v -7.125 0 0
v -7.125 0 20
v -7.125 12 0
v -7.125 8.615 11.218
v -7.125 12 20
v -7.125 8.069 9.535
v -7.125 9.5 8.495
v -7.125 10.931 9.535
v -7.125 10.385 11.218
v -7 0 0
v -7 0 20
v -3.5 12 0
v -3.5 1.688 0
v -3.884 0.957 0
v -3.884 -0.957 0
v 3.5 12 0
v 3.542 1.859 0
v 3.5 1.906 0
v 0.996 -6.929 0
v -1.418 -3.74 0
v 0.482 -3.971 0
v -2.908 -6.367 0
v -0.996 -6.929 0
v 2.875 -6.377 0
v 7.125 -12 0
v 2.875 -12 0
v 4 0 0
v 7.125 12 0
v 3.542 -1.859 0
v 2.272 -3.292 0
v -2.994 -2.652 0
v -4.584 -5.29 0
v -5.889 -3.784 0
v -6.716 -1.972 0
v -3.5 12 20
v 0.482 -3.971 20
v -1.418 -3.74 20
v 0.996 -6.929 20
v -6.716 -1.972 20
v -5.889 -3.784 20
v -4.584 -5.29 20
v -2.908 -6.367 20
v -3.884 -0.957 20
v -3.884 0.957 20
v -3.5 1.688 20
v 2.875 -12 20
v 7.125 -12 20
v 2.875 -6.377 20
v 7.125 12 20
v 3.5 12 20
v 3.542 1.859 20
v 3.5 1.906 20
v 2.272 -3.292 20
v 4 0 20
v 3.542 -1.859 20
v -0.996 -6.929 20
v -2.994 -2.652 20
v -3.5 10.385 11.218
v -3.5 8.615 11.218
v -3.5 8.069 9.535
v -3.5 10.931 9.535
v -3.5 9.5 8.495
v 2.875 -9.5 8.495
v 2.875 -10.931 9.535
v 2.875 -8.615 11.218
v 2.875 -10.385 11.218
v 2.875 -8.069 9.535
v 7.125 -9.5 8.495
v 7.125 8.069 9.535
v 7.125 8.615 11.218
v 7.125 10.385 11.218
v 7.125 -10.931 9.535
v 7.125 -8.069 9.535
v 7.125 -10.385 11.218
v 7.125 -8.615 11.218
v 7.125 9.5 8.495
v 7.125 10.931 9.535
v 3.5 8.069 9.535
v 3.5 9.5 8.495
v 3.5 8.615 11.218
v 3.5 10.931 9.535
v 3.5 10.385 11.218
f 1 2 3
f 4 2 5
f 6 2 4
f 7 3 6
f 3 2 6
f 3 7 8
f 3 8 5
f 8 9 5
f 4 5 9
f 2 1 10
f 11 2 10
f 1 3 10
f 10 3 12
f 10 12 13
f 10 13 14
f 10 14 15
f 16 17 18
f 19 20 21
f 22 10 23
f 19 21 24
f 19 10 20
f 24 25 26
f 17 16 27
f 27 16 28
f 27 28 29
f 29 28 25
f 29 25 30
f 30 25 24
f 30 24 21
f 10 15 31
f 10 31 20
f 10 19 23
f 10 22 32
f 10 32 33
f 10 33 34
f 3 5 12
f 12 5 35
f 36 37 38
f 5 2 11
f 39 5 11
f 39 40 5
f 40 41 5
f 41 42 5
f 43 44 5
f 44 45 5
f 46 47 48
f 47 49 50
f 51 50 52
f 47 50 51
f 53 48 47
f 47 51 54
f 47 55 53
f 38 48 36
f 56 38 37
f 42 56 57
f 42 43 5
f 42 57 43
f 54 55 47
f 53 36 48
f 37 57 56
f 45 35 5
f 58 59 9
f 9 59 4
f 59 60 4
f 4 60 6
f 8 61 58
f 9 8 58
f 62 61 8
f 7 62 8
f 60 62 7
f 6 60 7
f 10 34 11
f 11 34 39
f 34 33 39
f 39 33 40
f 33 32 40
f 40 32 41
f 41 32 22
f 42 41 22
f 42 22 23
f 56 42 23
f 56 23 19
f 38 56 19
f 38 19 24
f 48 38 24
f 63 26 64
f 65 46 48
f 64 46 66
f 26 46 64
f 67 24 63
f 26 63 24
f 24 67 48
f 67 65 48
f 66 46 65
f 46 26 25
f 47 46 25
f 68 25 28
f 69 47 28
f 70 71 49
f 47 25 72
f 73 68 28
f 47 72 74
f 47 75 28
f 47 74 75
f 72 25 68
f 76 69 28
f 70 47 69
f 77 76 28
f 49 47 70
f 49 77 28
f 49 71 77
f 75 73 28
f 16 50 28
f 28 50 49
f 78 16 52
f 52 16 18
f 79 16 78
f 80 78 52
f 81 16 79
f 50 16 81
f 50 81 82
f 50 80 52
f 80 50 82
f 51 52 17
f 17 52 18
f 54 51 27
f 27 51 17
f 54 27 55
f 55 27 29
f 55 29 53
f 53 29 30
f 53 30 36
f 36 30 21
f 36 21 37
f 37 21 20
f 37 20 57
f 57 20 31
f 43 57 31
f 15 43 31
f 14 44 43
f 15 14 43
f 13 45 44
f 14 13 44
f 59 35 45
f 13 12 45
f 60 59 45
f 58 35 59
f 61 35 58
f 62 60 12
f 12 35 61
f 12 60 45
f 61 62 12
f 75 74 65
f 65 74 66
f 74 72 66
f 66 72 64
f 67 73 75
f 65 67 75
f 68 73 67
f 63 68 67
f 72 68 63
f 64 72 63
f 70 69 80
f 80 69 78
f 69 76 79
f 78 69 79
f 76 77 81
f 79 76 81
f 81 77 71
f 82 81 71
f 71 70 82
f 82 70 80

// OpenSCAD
//resolution 1'
$fa=0.01;


render(convexity = 0.1) difference() {
	union() {
		cylinder(h=20, r=7);
		translate(v=[5,0,10]) cube(size=[4.25,24,20], center=true);
		translate(v=[-5,6,10]) cube(size=[4.25,12,20], center=true);
	}
	translate(v=[0,0,-1]) cylinder(h=22, r=4);
	translate(v=[0,6,11]) cube(size=[7,13,24], center=true);


	translate(v=[-11,9.5,10])  {
		rotate([0,90,0])	cylinder(h=22, r=1.505);
	}

	translate(v=[-11,-9.5,10])  {
		rotate([0,90,0])	cylinder(h=22, r=1.505);
	}
}
